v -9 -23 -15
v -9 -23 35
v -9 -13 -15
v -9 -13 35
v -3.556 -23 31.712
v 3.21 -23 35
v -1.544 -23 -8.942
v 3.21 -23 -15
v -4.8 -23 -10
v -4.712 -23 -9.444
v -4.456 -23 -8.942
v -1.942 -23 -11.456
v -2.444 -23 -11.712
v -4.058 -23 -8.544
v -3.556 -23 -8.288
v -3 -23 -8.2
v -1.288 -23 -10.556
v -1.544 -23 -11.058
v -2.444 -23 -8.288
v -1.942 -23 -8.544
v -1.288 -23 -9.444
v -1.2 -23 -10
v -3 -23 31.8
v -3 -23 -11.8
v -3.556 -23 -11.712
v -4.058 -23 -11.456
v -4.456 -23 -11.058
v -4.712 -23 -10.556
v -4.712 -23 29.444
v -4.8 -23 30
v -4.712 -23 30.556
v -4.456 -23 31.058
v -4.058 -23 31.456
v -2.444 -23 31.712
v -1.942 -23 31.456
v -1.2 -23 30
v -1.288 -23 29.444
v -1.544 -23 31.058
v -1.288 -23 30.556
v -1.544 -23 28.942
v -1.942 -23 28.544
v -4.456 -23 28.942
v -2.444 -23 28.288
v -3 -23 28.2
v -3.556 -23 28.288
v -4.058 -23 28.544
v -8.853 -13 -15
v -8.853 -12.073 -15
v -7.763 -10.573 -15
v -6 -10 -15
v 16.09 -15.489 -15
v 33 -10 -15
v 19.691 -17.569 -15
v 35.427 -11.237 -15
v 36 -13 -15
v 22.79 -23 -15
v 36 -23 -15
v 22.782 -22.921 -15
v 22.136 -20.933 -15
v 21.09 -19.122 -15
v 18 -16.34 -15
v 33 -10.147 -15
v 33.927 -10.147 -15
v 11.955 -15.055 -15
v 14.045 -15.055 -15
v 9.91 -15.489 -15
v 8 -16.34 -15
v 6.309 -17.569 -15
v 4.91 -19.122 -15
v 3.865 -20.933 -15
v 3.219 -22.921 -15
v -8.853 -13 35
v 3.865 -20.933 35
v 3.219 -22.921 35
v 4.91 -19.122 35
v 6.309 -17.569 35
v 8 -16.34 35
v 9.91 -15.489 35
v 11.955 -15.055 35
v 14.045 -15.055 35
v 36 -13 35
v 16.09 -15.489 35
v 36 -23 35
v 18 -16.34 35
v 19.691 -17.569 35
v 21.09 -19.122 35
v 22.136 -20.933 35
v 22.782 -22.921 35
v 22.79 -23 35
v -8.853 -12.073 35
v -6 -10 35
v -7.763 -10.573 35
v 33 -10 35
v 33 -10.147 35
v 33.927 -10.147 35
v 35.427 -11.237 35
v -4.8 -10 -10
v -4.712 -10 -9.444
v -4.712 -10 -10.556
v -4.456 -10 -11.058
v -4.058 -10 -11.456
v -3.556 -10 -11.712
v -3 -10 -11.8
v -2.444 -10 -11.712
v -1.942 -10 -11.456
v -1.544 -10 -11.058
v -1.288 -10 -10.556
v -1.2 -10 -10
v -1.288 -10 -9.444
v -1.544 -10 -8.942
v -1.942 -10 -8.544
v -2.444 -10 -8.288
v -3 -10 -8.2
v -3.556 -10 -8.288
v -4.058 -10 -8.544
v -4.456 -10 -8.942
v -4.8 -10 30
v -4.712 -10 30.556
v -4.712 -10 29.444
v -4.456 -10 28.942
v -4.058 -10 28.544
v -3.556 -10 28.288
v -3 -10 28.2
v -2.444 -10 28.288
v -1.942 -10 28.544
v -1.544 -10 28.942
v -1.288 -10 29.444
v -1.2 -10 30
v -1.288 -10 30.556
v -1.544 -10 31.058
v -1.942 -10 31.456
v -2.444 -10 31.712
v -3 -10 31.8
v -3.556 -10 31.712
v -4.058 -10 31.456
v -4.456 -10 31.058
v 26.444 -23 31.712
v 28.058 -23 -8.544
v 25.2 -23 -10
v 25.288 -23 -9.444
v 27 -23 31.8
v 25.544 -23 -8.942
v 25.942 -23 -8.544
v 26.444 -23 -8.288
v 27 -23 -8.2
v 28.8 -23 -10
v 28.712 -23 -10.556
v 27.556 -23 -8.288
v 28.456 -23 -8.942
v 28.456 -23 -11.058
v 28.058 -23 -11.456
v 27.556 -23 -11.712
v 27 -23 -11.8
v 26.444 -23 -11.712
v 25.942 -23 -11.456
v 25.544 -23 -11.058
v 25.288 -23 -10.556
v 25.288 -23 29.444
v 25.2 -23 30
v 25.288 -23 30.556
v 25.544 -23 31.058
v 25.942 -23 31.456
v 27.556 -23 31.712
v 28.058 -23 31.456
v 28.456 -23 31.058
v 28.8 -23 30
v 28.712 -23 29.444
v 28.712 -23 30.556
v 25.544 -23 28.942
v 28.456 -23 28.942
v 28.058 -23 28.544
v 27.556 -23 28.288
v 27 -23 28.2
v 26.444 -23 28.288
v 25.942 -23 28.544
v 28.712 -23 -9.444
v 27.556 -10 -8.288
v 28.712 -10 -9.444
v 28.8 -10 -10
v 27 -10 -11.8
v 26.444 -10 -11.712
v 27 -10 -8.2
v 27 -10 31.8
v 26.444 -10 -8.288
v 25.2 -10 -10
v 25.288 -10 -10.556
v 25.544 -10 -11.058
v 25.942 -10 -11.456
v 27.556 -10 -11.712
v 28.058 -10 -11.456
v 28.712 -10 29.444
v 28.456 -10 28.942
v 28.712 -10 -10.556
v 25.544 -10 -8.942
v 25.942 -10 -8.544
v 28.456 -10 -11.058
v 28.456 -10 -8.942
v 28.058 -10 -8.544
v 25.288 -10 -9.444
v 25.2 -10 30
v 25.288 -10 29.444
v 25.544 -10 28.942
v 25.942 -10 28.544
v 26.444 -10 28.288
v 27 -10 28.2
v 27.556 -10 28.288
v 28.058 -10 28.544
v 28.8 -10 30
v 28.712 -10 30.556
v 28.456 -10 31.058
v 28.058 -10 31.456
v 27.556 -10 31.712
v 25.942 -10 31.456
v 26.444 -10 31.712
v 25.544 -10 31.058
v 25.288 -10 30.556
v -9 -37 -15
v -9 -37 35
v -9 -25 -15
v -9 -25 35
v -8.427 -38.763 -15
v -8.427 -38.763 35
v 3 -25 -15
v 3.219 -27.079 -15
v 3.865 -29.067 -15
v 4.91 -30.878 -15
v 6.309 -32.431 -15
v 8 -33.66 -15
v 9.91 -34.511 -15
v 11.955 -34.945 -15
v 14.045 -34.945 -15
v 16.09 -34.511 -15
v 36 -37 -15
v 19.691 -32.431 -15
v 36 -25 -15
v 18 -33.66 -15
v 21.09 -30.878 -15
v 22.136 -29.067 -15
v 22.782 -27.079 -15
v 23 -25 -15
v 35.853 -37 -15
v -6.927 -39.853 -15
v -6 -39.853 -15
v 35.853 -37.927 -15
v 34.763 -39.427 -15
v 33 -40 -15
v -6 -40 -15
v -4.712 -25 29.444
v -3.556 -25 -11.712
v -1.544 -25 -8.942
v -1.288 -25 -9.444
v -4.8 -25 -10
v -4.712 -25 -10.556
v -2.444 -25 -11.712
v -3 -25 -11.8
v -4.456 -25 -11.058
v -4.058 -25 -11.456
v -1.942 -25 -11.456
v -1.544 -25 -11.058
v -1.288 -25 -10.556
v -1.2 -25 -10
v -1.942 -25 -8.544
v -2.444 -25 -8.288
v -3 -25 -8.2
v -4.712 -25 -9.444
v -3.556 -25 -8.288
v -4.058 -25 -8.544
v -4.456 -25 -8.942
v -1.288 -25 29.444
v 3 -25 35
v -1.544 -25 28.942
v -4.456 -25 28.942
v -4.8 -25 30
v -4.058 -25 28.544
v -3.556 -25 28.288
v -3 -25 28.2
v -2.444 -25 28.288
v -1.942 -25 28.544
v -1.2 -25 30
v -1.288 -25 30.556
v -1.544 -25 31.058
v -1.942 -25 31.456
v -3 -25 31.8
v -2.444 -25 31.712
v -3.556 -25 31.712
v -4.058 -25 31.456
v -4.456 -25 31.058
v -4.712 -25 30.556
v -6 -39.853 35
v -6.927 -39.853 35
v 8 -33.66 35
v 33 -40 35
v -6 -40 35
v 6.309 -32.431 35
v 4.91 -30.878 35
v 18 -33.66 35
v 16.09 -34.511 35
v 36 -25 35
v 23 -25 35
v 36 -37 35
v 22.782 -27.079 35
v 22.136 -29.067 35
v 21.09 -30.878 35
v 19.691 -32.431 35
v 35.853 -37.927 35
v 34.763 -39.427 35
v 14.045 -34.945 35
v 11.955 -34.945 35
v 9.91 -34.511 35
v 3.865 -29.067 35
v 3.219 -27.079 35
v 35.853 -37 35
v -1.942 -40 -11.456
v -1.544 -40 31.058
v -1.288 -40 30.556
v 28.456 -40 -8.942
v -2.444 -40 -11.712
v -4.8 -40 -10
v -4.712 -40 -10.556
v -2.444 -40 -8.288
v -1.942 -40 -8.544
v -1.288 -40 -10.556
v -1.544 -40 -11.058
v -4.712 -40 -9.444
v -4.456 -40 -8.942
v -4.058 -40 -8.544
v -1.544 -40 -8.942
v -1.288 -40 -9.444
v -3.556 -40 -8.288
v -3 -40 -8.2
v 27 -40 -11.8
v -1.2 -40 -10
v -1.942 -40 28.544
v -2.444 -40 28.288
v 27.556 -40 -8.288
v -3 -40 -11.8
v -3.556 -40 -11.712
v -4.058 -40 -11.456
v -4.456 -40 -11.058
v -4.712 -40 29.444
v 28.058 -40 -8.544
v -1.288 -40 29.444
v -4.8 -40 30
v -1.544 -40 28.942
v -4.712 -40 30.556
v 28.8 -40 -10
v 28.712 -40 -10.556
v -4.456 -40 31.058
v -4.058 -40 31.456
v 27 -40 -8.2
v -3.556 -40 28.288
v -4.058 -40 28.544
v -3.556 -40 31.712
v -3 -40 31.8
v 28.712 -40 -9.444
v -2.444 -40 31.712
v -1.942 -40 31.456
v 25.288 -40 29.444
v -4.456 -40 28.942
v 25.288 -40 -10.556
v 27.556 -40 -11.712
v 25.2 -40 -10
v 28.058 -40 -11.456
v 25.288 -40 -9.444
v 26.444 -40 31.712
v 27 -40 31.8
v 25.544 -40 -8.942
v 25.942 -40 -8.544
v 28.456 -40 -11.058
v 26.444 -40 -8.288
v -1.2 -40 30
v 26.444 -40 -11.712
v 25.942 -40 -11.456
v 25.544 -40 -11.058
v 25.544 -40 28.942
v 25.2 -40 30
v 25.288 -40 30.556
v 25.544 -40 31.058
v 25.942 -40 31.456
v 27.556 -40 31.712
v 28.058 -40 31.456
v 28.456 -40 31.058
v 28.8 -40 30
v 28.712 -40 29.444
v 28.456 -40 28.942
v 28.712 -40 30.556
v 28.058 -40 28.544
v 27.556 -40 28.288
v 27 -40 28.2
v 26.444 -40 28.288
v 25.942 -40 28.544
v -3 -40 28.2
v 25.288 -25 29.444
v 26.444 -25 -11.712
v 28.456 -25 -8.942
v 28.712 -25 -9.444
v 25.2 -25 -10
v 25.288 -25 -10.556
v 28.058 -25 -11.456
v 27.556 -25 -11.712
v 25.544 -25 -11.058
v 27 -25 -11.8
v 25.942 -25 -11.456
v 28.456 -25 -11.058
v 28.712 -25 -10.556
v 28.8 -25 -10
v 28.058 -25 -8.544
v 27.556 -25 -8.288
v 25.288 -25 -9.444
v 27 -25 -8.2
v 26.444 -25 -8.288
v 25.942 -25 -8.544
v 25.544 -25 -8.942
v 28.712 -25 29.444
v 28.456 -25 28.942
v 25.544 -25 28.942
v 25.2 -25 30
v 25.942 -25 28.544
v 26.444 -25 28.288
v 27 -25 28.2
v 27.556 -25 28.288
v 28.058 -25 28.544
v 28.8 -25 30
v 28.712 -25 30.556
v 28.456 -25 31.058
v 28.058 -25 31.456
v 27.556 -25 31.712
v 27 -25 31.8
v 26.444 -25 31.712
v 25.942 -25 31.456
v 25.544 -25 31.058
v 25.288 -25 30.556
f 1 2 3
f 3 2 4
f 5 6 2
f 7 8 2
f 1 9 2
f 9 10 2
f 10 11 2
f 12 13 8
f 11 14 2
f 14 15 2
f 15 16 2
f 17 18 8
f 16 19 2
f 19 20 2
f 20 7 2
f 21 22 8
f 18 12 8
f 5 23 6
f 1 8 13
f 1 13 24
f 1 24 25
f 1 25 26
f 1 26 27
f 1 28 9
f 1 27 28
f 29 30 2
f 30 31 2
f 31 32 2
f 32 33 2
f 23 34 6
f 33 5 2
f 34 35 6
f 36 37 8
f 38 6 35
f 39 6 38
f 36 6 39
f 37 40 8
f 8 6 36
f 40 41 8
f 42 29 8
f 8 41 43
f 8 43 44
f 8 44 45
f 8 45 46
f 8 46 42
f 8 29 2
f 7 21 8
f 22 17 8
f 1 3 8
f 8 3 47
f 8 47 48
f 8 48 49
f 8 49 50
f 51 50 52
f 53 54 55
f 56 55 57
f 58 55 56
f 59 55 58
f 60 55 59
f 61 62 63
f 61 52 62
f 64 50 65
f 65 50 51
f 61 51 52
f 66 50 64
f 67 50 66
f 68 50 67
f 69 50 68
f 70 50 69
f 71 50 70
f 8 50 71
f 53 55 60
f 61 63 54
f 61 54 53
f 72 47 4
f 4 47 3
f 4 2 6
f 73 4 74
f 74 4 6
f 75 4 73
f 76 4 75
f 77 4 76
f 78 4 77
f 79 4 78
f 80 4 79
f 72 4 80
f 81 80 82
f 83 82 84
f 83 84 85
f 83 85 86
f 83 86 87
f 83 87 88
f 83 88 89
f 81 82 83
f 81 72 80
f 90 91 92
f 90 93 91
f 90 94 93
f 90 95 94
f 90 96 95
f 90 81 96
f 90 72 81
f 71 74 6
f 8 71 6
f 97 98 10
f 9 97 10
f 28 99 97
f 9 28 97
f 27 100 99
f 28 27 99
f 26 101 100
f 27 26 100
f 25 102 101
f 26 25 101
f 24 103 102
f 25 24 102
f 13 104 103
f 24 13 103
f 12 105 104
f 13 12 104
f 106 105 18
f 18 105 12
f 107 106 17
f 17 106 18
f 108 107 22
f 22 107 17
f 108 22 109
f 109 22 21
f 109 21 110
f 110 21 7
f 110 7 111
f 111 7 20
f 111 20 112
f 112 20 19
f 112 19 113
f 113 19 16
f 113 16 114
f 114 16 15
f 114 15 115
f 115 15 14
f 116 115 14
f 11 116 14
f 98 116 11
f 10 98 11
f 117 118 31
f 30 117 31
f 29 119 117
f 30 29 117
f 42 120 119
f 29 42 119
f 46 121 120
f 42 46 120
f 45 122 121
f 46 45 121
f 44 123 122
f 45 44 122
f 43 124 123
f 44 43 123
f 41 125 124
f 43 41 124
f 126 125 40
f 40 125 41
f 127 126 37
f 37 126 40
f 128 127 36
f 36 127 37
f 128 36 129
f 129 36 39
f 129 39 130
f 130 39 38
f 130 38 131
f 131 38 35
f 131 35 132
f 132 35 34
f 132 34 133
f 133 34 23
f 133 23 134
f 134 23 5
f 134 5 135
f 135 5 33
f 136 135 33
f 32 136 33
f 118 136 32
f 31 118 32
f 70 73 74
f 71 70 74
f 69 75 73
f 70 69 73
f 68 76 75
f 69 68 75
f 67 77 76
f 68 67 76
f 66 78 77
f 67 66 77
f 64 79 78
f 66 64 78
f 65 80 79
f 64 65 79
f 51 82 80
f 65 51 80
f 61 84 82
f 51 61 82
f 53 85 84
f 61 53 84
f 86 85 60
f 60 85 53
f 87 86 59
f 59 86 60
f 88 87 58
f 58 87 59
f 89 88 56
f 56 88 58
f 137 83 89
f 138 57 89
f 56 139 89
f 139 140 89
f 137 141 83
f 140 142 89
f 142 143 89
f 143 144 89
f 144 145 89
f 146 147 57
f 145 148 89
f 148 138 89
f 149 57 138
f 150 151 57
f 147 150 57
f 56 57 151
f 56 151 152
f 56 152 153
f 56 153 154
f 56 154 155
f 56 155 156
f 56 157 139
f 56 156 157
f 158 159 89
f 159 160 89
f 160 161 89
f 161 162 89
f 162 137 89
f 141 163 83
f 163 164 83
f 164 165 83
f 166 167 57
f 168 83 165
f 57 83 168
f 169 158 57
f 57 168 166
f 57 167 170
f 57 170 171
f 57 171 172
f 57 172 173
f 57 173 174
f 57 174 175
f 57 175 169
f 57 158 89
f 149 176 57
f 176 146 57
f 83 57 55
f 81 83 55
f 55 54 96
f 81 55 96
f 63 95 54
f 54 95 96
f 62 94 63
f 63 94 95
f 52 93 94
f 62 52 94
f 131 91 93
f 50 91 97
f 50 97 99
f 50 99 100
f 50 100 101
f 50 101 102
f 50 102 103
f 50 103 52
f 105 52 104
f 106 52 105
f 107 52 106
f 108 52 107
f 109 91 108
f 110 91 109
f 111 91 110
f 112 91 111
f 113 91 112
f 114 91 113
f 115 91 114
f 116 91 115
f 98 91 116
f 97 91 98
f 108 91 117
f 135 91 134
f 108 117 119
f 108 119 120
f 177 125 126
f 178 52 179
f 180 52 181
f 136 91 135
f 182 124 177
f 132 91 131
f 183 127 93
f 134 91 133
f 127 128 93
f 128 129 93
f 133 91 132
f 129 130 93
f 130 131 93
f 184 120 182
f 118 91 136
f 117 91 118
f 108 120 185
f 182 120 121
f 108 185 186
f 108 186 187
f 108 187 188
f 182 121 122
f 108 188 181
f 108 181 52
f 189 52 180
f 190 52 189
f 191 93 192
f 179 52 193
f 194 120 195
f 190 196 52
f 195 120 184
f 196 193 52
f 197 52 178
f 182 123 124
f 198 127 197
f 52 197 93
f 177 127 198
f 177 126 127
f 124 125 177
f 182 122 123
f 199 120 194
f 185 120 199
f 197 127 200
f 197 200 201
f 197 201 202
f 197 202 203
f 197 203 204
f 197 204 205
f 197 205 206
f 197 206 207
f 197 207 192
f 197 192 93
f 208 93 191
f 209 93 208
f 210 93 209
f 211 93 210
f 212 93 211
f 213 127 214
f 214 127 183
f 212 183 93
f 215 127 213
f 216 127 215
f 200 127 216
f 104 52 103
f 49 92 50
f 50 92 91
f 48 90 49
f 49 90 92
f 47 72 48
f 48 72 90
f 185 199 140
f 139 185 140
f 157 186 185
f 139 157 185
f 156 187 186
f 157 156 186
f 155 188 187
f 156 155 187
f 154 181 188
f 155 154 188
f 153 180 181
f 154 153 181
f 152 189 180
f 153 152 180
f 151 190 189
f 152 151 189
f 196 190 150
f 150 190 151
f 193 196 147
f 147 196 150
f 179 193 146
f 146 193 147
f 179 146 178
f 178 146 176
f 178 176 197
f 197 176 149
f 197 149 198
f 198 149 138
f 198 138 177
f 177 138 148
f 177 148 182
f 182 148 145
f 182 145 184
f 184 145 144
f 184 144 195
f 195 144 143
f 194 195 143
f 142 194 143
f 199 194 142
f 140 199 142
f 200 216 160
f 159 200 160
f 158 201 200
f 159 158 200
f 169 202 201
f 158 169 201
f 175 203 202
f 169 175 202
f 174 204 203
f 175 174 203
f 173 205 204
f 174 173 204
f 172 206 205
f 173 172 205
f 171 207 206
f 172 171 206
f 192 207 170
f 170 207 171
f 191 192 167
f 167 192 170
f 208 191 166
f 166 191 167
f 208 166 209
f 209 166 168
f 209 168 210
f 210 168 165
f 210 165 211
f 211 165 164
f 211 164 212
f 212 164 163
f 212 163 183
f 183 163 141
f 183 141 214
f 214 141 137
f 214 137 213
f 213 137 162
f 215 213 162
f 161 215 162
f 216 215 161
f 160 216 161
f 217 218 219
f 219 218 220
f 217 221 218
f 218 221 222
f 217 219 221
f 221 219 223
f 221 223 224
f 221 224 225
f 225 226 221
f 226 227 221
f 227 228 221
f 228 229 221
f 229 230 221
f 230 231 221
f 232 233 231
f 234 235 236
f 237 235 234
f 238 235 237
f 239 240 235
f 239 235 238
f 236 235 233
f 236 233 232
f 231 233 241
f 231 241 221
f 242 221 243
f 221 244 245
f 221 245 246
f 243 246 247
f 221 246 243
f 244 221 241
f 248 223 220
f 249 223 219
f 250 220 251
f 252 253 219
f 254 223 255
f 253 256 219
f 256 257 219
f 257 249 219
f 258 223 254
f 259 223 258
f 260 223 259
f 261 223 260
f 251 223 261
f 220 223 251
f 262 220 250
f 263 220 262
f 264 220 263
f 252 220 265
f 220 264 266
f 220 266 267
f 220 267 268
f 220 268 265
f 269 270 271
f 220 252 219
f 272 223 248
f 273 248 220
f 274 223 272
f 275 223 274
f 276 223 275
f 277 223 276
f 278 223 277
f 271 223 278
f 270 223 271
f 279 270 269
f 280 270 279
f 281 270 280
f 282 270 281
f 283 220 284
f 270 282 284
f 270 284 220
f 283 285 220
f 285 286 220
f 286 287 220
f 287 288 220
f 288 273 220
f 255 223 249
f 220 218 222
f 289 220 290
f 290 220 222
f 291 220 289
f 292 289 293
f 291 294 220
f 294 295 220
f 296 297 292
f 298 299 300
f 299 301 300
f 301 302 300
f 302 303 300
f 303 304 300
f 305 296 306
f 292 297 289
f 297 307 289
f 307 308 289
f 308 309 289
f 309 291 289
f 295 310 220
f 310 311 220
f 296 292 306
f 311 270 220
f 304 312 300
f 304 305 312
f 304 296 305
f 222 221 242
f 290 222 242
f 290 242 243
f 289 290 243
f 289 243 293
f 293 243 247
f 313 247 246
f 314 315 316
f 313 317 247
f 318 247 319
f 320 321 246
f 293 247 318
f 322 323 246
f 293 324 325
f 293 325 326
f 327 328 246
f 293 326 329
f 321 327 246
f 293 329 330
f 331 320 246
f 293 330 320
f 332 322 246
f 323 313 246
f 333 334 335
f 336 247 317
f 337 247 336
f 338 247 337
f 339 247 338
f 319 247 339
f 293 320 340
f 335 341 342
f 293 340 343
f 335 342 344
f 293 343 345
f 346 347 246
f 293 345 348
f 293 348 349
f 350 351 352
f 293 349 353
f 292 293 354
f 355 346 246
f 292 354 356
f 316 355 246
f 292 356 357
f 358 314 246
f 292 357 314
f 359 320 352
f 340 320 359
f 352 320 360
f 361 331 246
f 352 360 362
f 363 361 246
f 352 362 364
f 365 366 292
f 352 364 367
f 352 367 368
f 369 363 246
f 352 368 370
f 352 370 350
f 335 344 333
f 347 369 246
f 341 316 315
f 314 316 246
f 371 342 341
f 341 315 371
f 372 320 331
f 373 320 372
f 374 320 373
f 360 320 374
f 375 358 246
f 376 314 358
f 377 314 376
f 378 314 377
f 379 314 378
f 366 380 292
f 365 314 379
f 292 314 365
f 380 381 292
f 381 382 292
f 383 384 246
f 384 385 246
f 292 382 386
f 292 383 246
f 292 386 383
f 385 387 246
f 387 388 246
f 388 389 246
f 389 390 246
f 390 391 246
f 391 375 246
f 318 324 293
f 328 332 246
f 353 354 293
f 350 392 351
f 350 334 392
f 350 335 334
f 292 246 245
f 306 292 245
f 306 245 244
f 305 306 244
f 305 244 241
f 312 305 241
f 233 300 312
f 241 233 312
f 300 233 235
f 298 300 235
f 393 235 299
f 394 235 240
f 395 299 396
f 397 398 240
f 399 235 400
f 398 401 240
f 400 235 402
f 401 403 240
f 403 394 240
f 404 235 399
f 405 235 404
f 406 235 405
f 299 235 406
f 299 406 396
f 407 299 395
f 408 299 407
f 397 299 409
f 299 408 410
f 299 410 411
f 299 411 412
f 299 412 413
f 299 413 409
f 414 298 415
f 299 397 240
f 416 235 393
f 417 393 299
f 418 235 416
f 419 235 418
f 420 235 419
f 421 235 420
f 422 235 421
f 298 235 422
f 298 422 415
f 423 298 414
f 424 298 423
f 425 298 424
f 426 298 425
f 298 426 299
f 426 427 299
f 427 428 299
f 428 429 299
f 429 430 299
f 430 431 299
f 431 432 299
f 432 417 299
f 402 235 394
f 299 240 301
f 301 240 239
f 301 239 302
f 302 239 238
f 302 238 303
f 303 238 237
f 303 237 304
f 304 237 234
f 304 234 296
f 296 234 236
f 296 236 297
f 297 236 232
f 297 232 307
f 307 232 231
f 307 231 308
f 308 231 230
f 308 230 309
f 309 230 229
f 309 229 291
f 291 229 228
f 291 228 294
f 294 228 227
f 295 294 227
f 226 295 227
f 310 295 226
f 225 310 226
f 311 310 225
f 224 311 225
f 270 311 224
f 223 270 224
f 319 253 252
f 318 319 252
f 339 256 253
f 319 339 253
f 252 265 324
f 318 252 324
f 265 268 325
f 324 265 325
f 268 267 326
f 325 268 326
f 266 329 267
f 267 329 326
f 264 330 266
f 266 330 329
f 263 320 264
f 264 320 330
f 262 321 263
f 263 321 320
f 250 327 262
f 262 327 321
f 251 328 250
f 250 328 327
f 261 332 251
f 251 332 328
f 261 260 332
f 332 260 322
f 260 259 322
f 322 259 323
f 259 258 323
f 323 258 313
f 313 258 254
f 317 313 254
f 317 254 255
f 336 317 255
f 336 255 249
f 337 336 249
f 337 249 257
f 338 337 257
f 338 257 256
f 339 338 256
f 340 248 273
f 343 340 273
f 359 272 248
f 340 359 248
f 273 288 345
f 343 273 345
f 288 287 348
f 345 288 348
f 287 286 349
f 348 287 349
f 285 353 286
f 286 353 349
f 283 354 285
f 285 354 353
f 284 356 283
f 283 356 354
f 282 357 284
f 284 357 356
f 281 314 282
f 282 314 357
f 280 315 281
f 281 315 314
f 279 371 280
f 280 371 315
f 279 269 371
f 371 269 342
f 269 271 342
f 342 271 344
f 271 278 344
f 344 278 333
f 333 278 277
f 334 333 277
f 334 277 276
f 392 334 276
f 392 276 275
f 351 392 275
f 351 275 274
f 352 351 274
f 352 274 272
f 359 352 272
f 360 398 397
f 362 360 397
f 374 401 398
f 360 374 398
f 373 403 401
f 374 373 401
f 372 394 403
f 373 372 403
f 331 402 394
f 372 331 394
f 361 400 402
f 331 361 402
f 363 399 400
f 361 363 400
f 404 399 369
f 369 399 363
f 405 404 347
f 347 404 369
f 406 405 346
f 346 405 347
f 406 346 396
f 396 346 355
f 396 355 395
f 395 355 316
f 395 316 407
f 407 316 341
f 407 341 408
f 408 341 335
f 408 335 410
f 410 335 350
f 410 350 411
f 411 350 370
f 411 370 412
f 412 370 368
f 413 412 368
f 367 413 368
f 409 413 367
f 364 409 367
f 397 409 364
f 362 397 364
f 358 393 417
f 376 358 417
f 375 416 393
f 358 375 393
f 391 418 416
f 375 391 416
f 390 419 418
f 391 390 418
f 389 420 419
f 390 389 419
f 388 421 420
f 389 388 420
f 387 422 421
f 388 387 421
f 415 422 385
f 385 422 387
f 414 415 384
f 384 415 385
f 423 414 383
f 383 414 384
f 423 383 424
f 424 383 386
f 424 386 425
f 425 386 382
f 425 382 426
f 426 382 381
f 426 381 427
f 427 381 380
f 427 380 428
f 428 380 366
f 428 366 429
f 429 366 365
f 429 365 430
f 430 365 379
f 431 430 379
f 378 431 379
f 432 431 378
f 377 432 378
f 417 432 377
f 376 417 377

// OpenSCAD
// file: inc/functions.scad
// PRUSA iteration3
// Functions used in many files
// GNU GPL v3
// Josef Průša <josefprusa@me.com>
// Václav 'ax' Hůla <axtheb@gmail.com>
// Vlnofka <>
// http://www.reprap.org/wiki/Prusa_Mendel
// http://github.com/prusajr/PrusaMendel

module roundcorner(diameter){
	difference(){
		cube(size = [diameter,diameter,99], center = false);
		translate(v = [diameter, diameter, 0]) cylinder(h = 100, r=diameter, center=true);
	}
}
module nut(d,h,horizontal=true){
    cornerdiameter =  (d / 2) / cos (180 / 6);
    cylinder(h = h, r = cornerdiameter, $fn = 6);
    if(horizontal){
        for(i = [1:6]){
            rotate([0,0,60*i]) translate([-cornerdiameter-0.2,0,0]) rotate([0,0,-45]) cube([2,2,h]);
        }
    }
}

// Based on nophead research
module polyhole(d, h, center=false) {
    n = max(round(2 * d),3);
    rotate([0,0,180])
        cylinder(h = h, r = (d / 2) / cos (180 / n), $fn = n);
}

// make it interchangeable between this and cylinder
module cylinder_poly(r, h, center=false){
    polyhole(d=r*2, h=h, center=center);
}

module fillet(radius, height=100, $fn=0) {
    //this creates acutal fillet
    translate([-radius, -radius, -height/2-0.01])
        difference() {
            cube([radius*2, radius*2, height+0.02]);
            cylinder(r=radius, h=height+0.02, $fn=$fn);
        }
}

module cube_fillet(size, radius=-1, vertical=[3,3,3,3], top=[0,0,0,0], bottom=[0,0,0,0], center=false, $fn=0){
    //
    if (center) {
        cube_fillet_inside(size, radius, vertical, top, bottom, $fn);
    } else {
        translate([size[0]/2, size[1]/2, size[2]/2])
            cube_fillet_inside(size, radius, vertical, top, bottom, $fn);
    }
}

module cube_negative_fillet(size, radius=-1, vertical=[3,3,3,3], top=[0,0,0,0], bottom=[0,0,0,0], $fn=0){

    j=[1,0,1,0];

    for (i=[0:3]) {
        if (radius > -1) {
            rotate([0, 0, 90*i]) translate([size[1-j[i]]/2, size[j[i]]/2, 0]) fillet(radius, size[2], $fn=$fn);
        } else {
            rotate([0, 0, 90*i]) translate([size[1-j[i]]/2, size[j[i]]/2, 0]) fillet(vertical[i], size[2], $fn=$fn);
        }
        rotate([90*i, -90, 0]) translate([size[2]/2, size[j[i]]/2, 0 ]) fillet(top[i], size[1-j[i]], $fn=$fn);
        rotate([90*(4-i), 90, 0]) translate([size[2]/2, size[j[i]]/2, 0]) fillet(bottom[i], size[1-j[i]], $fn=$fn);

    }
}

module cube_fillet_inside(size, radius=-1, vertical=[3,3,3,3], top=[0,0,0,0], bottom=[0,0,0,0], $fn=0){
    //makes CENTERED cube with round corners
    // if you give it radius, it will fillet vertical corners.
    //othervise use vertical, top, bottom arrays
    //when viewed from top, it starts in upper right corner (+x,+y quadrant) , goes counterclockwise
    //top/bottom fillet starts in direction of Y axis and goes CCW too


    if (radius == 0) {
        cube(size, center=true);
    } else {
        difference() {
            cube(size, center=true);
            cube_negative_fillet(size, radius, vertical, top, bottom, $fn);
        }
    }
}


module nema17(places=[1,1,1,1], size=15.5, h=10, holes=false, shadow=false, $fn=24){
    for (i=[0:3]) {
        if (places[i] == 1) {
            rotate([0, 0, 90*i]) translate([size, size, 0]) {
                if (holes) {
                    #rotate([0, 0, -90*i])  translate([0,0,-10]) screw(r=1.7, slant=false, head_drop=13, $fn=$fn, h=h+12);
                } else {
                    rotate([0, 0, -90*i]) cylinder(h=h, r=5.5, $fn=$fn);
                }
            }
        }
    }
    if (shadow != false) {
        %translate ([0, 0, shadow+21+3]) cube([42,42,42], center = true);
    //flange
        %translate ([0, 0, shadow+21+3-21-1]) cylinder(r=11,h=2, center = true, $fn=20);
    //shaft
        %translate ([0, 0, shadow+21+3-21-7]) cylinder(r=2.5,h=14, center = true);
    }
}

module screw(h=20, r=2, r_head=3.5, head_drop=0, slant=true, poly=false, $fn=0){
    //makes screw with head
    //for substraction as screw hole
    if (poly) {
        cylinder_poly(h=h, r=r, $fn=$fn);
    } else {
        cylinder(h=h, r=r, $fn=$fn);
    }
    if (slant) {
        translate([0, 0, head_drop-0.01]) cylinder(h=r_head, r2=0, r1=r_head, $fn=$fn);
    }

    if (head_drop > 0) {
        translate([0, 0, -0.01]) cylinder(h=head_drop+0.01, r=r_head, $fn=$fn);
    }
}
module screw_cylinder(r_head=5.25,r=3.25,head_drop=6.2,slant=false){
	screw(r_head=r_head,head_drop=head_drop,r=r, slant=slant);

}

//screw_cylinder();
//cube_fillet([10,20,30], vertical=[3,2,0,0], top=[3,2,0,5], bottom=[3,2,0,5]);
//cube_fillet([10,20,30], radius=2, top=[7,2,7,2]);
// file: inc/metric.scad
// PRUSA iteration3
// Default metric sizes
// GNU GPL v3
// Josef Průša <josefprusa@me.com>
// http://www.reprap.org/wiki/Prusa_Mendel
// http://github.com/prusajr/PrusaMendel

// DONT CHANGE THIS FILE! ALTER VALUES IN CONFIGURATION.SCAD INSTEAD

// RODS

threaded_rod_diameter = 8.7;
threaded_rod_diameter_horizontal = 8.7;
smooth_bar_diameter = 8;
smooth_bar_diameter_horizontal = 8.8;

// Nuts and bolts

m8_diameter = 9;
m8_nut_diameter = 14.1;

m4_diameter = 4.5;
m4_nut_diameter = 9;

m3_diameter = 3.6;
m3_nut_diameter = 5.3;
m3_nut_diameter_horizontal = 6.1;

// Bushing holder

bushing_core_diameter = smooth_bar_diameter;
bushing_material_thickness = 1;

// Motors

motor_shaft = 5.5;
// file: configuration.scad
// PRUSA iteration3
// Configuration file
// GNU GPL v3
// Josef Průša <josefprusa@me.com>
// Václav 'ax' Hůla <axtheb@gmail.com>
// http://www.reprap.org/wiki/Prusa_Mendel
// http://github.com/prusajr/PrusaMendel

// PLEASE SELECT ONE OF THE CONFIGURATIONS BELOW
// BY UN-COMMENTING IT

// Uncomment for metric settings
// METRIC METRIC METRIC METRIC METRIC METRIC METRIC METRIC 

include <inc/metric.scad>;

// Custom settings here, tailor to your supplies and print settings

// Select your belt type ******************************************************

//T2.5
//belt_tooth_distance = 2.5;
//belt_tooth_ratio = 0.5;

//T5 (strongly discouraged)
belt_tooth_distance = 5;
belt_tooth_ratio = 0.75;

//HTD3
//belt_tooth_distance = 3;
//belt_tooth_ratio = 0.75;

//MXL
//belt_tooth_distance = 2.032;
//belt_tooth_ratio = 0.64;

// Choose bearing/bushing configuration ***************************************

//Choose from:

// 0 = Z as lm[e]8uu, X and Y bushings
// 1 = all bushings
// 2 = all bearings [default. Do not change unless you really know what you are doing]
// DO NOT OFFER 0 or 1 VARIANTS FOR SALE. We really mean that. In the long run it hurts everyone.

bearing_choice = 2;

// Bushing version
// 0 = square igus housings. By igus we mean JFM-0810-10 or GFM-0810-10
// 1 = round igus (works better if printed precisely)
// 2 = bronze self-aligning bushings
bushing_type = 0;

//Bearing version
// 0 = default lm8uu
// 1 = lme8uu
bearing_type = 0;

// Select idler bearing size **************************************************

// 0 = 608 [standard skate bearings]
// 1 = 624 [roughly same diameter as pulley, makes belt parallel so its prettier]

idler_bearing = 0;

// Thickness of the XZ plate board
board_thickness = 12;

//Layer height * width over thickness. Used for idler sleeve
single_wall_width = 0.3*2.2;

// END of custom settings


// You are not supposed to change this
board_to_xz_distance = 26;
xaxis_rod_distance = 45;
carriage_l = 74;
carriage_hole_to_side = 5;
carriage_hole_height = 4;

//calculated from settings

idler_size = (idler_bearing == 0) ? 22 : 13;

//use 4.5 for 608, 2.5 for 624
idler_size_inner_r = (idler_bearing == 0) ? 4.5 : 2.5;

idler_width = (idler_bearing == 0) ? 9 : 5;

// CHANGE ONLY THE STUFF YOU KNOW
// IT WILL REPLACE DEFAULT SETTING

// RODS

// threaded_rod_diameter = 0;
// threaded_rod_diameter_horizontal = 0;
// smooth_bar_diameter = 0;
// smooth_bar_diameter_horizontal = 0;

// Nuts and bolts

// m8_diameter = 0;
// m8_nut_diameter = 0;

// m4_diameter = 0;
// m4_nut_diameter = 0;

// m3_diameter = 0;
// m3_nut_diameter = 0;

// Bushing holder

// bushing_core_diameter = smooth_bar_diameter;
// bushing_material_thickness = 0;

///counted stuff
m3_nut_diameter_bigger = ((m3_nut_diameter  / 2) / cos (180 / 6))*2;

// functions
include <inc/functions.scad>


// These constants define the geometry of the complete-printer.scad

//x_smooth_rod_length=325;
//y_smooth_rod_length=405;
//z_smooth_rod_length=235;
bed_x_size=225;
bed_y_size=225;

x_smooth_rod_length=450+board_thickness*2+10; // 492 for 16mm thickness; 484 for 12mm thickness
y_smooth_rod_length=470;
z_smooth_rod_length=405;  
bed_x_size=225;
bed_y_size=225;
// main file
include <configuration.scad>

//%translate([80,0,50])rotate([0,-90,0])import("stl/x-carriage.stl",center=true);
rotate([-0,0,0])difference(){
	dremel_support();
	//#translate([8,-14,5])dial();

}

module dremel_support(){
	difference(){
		translate([-9,-40,-15])cube_fillet([45,30,50]);
		translate([13,-25,-17])cylinder(r=10,h=70);
		translate([-10,-25,-17])cube([60,2,60]);
		translate([-3,0,30])rotate([90,0,0])cylinder(r=m3_diameter/2,h=70,$fn=20);
		translate([27,0,30])rotate([90,0,0])cylinder(r=m3_diameter/2,h=70,$fn=20);
		translate([-3,0,-10])rotate([90,0,0])cylinder(r=m3_diameter/2,h=70,$fn=20);
		translate([27,0,-10])rotate([90,0,0])cylinder(r=m3_diameter/2,h=70,$fn=20);

	}
}
